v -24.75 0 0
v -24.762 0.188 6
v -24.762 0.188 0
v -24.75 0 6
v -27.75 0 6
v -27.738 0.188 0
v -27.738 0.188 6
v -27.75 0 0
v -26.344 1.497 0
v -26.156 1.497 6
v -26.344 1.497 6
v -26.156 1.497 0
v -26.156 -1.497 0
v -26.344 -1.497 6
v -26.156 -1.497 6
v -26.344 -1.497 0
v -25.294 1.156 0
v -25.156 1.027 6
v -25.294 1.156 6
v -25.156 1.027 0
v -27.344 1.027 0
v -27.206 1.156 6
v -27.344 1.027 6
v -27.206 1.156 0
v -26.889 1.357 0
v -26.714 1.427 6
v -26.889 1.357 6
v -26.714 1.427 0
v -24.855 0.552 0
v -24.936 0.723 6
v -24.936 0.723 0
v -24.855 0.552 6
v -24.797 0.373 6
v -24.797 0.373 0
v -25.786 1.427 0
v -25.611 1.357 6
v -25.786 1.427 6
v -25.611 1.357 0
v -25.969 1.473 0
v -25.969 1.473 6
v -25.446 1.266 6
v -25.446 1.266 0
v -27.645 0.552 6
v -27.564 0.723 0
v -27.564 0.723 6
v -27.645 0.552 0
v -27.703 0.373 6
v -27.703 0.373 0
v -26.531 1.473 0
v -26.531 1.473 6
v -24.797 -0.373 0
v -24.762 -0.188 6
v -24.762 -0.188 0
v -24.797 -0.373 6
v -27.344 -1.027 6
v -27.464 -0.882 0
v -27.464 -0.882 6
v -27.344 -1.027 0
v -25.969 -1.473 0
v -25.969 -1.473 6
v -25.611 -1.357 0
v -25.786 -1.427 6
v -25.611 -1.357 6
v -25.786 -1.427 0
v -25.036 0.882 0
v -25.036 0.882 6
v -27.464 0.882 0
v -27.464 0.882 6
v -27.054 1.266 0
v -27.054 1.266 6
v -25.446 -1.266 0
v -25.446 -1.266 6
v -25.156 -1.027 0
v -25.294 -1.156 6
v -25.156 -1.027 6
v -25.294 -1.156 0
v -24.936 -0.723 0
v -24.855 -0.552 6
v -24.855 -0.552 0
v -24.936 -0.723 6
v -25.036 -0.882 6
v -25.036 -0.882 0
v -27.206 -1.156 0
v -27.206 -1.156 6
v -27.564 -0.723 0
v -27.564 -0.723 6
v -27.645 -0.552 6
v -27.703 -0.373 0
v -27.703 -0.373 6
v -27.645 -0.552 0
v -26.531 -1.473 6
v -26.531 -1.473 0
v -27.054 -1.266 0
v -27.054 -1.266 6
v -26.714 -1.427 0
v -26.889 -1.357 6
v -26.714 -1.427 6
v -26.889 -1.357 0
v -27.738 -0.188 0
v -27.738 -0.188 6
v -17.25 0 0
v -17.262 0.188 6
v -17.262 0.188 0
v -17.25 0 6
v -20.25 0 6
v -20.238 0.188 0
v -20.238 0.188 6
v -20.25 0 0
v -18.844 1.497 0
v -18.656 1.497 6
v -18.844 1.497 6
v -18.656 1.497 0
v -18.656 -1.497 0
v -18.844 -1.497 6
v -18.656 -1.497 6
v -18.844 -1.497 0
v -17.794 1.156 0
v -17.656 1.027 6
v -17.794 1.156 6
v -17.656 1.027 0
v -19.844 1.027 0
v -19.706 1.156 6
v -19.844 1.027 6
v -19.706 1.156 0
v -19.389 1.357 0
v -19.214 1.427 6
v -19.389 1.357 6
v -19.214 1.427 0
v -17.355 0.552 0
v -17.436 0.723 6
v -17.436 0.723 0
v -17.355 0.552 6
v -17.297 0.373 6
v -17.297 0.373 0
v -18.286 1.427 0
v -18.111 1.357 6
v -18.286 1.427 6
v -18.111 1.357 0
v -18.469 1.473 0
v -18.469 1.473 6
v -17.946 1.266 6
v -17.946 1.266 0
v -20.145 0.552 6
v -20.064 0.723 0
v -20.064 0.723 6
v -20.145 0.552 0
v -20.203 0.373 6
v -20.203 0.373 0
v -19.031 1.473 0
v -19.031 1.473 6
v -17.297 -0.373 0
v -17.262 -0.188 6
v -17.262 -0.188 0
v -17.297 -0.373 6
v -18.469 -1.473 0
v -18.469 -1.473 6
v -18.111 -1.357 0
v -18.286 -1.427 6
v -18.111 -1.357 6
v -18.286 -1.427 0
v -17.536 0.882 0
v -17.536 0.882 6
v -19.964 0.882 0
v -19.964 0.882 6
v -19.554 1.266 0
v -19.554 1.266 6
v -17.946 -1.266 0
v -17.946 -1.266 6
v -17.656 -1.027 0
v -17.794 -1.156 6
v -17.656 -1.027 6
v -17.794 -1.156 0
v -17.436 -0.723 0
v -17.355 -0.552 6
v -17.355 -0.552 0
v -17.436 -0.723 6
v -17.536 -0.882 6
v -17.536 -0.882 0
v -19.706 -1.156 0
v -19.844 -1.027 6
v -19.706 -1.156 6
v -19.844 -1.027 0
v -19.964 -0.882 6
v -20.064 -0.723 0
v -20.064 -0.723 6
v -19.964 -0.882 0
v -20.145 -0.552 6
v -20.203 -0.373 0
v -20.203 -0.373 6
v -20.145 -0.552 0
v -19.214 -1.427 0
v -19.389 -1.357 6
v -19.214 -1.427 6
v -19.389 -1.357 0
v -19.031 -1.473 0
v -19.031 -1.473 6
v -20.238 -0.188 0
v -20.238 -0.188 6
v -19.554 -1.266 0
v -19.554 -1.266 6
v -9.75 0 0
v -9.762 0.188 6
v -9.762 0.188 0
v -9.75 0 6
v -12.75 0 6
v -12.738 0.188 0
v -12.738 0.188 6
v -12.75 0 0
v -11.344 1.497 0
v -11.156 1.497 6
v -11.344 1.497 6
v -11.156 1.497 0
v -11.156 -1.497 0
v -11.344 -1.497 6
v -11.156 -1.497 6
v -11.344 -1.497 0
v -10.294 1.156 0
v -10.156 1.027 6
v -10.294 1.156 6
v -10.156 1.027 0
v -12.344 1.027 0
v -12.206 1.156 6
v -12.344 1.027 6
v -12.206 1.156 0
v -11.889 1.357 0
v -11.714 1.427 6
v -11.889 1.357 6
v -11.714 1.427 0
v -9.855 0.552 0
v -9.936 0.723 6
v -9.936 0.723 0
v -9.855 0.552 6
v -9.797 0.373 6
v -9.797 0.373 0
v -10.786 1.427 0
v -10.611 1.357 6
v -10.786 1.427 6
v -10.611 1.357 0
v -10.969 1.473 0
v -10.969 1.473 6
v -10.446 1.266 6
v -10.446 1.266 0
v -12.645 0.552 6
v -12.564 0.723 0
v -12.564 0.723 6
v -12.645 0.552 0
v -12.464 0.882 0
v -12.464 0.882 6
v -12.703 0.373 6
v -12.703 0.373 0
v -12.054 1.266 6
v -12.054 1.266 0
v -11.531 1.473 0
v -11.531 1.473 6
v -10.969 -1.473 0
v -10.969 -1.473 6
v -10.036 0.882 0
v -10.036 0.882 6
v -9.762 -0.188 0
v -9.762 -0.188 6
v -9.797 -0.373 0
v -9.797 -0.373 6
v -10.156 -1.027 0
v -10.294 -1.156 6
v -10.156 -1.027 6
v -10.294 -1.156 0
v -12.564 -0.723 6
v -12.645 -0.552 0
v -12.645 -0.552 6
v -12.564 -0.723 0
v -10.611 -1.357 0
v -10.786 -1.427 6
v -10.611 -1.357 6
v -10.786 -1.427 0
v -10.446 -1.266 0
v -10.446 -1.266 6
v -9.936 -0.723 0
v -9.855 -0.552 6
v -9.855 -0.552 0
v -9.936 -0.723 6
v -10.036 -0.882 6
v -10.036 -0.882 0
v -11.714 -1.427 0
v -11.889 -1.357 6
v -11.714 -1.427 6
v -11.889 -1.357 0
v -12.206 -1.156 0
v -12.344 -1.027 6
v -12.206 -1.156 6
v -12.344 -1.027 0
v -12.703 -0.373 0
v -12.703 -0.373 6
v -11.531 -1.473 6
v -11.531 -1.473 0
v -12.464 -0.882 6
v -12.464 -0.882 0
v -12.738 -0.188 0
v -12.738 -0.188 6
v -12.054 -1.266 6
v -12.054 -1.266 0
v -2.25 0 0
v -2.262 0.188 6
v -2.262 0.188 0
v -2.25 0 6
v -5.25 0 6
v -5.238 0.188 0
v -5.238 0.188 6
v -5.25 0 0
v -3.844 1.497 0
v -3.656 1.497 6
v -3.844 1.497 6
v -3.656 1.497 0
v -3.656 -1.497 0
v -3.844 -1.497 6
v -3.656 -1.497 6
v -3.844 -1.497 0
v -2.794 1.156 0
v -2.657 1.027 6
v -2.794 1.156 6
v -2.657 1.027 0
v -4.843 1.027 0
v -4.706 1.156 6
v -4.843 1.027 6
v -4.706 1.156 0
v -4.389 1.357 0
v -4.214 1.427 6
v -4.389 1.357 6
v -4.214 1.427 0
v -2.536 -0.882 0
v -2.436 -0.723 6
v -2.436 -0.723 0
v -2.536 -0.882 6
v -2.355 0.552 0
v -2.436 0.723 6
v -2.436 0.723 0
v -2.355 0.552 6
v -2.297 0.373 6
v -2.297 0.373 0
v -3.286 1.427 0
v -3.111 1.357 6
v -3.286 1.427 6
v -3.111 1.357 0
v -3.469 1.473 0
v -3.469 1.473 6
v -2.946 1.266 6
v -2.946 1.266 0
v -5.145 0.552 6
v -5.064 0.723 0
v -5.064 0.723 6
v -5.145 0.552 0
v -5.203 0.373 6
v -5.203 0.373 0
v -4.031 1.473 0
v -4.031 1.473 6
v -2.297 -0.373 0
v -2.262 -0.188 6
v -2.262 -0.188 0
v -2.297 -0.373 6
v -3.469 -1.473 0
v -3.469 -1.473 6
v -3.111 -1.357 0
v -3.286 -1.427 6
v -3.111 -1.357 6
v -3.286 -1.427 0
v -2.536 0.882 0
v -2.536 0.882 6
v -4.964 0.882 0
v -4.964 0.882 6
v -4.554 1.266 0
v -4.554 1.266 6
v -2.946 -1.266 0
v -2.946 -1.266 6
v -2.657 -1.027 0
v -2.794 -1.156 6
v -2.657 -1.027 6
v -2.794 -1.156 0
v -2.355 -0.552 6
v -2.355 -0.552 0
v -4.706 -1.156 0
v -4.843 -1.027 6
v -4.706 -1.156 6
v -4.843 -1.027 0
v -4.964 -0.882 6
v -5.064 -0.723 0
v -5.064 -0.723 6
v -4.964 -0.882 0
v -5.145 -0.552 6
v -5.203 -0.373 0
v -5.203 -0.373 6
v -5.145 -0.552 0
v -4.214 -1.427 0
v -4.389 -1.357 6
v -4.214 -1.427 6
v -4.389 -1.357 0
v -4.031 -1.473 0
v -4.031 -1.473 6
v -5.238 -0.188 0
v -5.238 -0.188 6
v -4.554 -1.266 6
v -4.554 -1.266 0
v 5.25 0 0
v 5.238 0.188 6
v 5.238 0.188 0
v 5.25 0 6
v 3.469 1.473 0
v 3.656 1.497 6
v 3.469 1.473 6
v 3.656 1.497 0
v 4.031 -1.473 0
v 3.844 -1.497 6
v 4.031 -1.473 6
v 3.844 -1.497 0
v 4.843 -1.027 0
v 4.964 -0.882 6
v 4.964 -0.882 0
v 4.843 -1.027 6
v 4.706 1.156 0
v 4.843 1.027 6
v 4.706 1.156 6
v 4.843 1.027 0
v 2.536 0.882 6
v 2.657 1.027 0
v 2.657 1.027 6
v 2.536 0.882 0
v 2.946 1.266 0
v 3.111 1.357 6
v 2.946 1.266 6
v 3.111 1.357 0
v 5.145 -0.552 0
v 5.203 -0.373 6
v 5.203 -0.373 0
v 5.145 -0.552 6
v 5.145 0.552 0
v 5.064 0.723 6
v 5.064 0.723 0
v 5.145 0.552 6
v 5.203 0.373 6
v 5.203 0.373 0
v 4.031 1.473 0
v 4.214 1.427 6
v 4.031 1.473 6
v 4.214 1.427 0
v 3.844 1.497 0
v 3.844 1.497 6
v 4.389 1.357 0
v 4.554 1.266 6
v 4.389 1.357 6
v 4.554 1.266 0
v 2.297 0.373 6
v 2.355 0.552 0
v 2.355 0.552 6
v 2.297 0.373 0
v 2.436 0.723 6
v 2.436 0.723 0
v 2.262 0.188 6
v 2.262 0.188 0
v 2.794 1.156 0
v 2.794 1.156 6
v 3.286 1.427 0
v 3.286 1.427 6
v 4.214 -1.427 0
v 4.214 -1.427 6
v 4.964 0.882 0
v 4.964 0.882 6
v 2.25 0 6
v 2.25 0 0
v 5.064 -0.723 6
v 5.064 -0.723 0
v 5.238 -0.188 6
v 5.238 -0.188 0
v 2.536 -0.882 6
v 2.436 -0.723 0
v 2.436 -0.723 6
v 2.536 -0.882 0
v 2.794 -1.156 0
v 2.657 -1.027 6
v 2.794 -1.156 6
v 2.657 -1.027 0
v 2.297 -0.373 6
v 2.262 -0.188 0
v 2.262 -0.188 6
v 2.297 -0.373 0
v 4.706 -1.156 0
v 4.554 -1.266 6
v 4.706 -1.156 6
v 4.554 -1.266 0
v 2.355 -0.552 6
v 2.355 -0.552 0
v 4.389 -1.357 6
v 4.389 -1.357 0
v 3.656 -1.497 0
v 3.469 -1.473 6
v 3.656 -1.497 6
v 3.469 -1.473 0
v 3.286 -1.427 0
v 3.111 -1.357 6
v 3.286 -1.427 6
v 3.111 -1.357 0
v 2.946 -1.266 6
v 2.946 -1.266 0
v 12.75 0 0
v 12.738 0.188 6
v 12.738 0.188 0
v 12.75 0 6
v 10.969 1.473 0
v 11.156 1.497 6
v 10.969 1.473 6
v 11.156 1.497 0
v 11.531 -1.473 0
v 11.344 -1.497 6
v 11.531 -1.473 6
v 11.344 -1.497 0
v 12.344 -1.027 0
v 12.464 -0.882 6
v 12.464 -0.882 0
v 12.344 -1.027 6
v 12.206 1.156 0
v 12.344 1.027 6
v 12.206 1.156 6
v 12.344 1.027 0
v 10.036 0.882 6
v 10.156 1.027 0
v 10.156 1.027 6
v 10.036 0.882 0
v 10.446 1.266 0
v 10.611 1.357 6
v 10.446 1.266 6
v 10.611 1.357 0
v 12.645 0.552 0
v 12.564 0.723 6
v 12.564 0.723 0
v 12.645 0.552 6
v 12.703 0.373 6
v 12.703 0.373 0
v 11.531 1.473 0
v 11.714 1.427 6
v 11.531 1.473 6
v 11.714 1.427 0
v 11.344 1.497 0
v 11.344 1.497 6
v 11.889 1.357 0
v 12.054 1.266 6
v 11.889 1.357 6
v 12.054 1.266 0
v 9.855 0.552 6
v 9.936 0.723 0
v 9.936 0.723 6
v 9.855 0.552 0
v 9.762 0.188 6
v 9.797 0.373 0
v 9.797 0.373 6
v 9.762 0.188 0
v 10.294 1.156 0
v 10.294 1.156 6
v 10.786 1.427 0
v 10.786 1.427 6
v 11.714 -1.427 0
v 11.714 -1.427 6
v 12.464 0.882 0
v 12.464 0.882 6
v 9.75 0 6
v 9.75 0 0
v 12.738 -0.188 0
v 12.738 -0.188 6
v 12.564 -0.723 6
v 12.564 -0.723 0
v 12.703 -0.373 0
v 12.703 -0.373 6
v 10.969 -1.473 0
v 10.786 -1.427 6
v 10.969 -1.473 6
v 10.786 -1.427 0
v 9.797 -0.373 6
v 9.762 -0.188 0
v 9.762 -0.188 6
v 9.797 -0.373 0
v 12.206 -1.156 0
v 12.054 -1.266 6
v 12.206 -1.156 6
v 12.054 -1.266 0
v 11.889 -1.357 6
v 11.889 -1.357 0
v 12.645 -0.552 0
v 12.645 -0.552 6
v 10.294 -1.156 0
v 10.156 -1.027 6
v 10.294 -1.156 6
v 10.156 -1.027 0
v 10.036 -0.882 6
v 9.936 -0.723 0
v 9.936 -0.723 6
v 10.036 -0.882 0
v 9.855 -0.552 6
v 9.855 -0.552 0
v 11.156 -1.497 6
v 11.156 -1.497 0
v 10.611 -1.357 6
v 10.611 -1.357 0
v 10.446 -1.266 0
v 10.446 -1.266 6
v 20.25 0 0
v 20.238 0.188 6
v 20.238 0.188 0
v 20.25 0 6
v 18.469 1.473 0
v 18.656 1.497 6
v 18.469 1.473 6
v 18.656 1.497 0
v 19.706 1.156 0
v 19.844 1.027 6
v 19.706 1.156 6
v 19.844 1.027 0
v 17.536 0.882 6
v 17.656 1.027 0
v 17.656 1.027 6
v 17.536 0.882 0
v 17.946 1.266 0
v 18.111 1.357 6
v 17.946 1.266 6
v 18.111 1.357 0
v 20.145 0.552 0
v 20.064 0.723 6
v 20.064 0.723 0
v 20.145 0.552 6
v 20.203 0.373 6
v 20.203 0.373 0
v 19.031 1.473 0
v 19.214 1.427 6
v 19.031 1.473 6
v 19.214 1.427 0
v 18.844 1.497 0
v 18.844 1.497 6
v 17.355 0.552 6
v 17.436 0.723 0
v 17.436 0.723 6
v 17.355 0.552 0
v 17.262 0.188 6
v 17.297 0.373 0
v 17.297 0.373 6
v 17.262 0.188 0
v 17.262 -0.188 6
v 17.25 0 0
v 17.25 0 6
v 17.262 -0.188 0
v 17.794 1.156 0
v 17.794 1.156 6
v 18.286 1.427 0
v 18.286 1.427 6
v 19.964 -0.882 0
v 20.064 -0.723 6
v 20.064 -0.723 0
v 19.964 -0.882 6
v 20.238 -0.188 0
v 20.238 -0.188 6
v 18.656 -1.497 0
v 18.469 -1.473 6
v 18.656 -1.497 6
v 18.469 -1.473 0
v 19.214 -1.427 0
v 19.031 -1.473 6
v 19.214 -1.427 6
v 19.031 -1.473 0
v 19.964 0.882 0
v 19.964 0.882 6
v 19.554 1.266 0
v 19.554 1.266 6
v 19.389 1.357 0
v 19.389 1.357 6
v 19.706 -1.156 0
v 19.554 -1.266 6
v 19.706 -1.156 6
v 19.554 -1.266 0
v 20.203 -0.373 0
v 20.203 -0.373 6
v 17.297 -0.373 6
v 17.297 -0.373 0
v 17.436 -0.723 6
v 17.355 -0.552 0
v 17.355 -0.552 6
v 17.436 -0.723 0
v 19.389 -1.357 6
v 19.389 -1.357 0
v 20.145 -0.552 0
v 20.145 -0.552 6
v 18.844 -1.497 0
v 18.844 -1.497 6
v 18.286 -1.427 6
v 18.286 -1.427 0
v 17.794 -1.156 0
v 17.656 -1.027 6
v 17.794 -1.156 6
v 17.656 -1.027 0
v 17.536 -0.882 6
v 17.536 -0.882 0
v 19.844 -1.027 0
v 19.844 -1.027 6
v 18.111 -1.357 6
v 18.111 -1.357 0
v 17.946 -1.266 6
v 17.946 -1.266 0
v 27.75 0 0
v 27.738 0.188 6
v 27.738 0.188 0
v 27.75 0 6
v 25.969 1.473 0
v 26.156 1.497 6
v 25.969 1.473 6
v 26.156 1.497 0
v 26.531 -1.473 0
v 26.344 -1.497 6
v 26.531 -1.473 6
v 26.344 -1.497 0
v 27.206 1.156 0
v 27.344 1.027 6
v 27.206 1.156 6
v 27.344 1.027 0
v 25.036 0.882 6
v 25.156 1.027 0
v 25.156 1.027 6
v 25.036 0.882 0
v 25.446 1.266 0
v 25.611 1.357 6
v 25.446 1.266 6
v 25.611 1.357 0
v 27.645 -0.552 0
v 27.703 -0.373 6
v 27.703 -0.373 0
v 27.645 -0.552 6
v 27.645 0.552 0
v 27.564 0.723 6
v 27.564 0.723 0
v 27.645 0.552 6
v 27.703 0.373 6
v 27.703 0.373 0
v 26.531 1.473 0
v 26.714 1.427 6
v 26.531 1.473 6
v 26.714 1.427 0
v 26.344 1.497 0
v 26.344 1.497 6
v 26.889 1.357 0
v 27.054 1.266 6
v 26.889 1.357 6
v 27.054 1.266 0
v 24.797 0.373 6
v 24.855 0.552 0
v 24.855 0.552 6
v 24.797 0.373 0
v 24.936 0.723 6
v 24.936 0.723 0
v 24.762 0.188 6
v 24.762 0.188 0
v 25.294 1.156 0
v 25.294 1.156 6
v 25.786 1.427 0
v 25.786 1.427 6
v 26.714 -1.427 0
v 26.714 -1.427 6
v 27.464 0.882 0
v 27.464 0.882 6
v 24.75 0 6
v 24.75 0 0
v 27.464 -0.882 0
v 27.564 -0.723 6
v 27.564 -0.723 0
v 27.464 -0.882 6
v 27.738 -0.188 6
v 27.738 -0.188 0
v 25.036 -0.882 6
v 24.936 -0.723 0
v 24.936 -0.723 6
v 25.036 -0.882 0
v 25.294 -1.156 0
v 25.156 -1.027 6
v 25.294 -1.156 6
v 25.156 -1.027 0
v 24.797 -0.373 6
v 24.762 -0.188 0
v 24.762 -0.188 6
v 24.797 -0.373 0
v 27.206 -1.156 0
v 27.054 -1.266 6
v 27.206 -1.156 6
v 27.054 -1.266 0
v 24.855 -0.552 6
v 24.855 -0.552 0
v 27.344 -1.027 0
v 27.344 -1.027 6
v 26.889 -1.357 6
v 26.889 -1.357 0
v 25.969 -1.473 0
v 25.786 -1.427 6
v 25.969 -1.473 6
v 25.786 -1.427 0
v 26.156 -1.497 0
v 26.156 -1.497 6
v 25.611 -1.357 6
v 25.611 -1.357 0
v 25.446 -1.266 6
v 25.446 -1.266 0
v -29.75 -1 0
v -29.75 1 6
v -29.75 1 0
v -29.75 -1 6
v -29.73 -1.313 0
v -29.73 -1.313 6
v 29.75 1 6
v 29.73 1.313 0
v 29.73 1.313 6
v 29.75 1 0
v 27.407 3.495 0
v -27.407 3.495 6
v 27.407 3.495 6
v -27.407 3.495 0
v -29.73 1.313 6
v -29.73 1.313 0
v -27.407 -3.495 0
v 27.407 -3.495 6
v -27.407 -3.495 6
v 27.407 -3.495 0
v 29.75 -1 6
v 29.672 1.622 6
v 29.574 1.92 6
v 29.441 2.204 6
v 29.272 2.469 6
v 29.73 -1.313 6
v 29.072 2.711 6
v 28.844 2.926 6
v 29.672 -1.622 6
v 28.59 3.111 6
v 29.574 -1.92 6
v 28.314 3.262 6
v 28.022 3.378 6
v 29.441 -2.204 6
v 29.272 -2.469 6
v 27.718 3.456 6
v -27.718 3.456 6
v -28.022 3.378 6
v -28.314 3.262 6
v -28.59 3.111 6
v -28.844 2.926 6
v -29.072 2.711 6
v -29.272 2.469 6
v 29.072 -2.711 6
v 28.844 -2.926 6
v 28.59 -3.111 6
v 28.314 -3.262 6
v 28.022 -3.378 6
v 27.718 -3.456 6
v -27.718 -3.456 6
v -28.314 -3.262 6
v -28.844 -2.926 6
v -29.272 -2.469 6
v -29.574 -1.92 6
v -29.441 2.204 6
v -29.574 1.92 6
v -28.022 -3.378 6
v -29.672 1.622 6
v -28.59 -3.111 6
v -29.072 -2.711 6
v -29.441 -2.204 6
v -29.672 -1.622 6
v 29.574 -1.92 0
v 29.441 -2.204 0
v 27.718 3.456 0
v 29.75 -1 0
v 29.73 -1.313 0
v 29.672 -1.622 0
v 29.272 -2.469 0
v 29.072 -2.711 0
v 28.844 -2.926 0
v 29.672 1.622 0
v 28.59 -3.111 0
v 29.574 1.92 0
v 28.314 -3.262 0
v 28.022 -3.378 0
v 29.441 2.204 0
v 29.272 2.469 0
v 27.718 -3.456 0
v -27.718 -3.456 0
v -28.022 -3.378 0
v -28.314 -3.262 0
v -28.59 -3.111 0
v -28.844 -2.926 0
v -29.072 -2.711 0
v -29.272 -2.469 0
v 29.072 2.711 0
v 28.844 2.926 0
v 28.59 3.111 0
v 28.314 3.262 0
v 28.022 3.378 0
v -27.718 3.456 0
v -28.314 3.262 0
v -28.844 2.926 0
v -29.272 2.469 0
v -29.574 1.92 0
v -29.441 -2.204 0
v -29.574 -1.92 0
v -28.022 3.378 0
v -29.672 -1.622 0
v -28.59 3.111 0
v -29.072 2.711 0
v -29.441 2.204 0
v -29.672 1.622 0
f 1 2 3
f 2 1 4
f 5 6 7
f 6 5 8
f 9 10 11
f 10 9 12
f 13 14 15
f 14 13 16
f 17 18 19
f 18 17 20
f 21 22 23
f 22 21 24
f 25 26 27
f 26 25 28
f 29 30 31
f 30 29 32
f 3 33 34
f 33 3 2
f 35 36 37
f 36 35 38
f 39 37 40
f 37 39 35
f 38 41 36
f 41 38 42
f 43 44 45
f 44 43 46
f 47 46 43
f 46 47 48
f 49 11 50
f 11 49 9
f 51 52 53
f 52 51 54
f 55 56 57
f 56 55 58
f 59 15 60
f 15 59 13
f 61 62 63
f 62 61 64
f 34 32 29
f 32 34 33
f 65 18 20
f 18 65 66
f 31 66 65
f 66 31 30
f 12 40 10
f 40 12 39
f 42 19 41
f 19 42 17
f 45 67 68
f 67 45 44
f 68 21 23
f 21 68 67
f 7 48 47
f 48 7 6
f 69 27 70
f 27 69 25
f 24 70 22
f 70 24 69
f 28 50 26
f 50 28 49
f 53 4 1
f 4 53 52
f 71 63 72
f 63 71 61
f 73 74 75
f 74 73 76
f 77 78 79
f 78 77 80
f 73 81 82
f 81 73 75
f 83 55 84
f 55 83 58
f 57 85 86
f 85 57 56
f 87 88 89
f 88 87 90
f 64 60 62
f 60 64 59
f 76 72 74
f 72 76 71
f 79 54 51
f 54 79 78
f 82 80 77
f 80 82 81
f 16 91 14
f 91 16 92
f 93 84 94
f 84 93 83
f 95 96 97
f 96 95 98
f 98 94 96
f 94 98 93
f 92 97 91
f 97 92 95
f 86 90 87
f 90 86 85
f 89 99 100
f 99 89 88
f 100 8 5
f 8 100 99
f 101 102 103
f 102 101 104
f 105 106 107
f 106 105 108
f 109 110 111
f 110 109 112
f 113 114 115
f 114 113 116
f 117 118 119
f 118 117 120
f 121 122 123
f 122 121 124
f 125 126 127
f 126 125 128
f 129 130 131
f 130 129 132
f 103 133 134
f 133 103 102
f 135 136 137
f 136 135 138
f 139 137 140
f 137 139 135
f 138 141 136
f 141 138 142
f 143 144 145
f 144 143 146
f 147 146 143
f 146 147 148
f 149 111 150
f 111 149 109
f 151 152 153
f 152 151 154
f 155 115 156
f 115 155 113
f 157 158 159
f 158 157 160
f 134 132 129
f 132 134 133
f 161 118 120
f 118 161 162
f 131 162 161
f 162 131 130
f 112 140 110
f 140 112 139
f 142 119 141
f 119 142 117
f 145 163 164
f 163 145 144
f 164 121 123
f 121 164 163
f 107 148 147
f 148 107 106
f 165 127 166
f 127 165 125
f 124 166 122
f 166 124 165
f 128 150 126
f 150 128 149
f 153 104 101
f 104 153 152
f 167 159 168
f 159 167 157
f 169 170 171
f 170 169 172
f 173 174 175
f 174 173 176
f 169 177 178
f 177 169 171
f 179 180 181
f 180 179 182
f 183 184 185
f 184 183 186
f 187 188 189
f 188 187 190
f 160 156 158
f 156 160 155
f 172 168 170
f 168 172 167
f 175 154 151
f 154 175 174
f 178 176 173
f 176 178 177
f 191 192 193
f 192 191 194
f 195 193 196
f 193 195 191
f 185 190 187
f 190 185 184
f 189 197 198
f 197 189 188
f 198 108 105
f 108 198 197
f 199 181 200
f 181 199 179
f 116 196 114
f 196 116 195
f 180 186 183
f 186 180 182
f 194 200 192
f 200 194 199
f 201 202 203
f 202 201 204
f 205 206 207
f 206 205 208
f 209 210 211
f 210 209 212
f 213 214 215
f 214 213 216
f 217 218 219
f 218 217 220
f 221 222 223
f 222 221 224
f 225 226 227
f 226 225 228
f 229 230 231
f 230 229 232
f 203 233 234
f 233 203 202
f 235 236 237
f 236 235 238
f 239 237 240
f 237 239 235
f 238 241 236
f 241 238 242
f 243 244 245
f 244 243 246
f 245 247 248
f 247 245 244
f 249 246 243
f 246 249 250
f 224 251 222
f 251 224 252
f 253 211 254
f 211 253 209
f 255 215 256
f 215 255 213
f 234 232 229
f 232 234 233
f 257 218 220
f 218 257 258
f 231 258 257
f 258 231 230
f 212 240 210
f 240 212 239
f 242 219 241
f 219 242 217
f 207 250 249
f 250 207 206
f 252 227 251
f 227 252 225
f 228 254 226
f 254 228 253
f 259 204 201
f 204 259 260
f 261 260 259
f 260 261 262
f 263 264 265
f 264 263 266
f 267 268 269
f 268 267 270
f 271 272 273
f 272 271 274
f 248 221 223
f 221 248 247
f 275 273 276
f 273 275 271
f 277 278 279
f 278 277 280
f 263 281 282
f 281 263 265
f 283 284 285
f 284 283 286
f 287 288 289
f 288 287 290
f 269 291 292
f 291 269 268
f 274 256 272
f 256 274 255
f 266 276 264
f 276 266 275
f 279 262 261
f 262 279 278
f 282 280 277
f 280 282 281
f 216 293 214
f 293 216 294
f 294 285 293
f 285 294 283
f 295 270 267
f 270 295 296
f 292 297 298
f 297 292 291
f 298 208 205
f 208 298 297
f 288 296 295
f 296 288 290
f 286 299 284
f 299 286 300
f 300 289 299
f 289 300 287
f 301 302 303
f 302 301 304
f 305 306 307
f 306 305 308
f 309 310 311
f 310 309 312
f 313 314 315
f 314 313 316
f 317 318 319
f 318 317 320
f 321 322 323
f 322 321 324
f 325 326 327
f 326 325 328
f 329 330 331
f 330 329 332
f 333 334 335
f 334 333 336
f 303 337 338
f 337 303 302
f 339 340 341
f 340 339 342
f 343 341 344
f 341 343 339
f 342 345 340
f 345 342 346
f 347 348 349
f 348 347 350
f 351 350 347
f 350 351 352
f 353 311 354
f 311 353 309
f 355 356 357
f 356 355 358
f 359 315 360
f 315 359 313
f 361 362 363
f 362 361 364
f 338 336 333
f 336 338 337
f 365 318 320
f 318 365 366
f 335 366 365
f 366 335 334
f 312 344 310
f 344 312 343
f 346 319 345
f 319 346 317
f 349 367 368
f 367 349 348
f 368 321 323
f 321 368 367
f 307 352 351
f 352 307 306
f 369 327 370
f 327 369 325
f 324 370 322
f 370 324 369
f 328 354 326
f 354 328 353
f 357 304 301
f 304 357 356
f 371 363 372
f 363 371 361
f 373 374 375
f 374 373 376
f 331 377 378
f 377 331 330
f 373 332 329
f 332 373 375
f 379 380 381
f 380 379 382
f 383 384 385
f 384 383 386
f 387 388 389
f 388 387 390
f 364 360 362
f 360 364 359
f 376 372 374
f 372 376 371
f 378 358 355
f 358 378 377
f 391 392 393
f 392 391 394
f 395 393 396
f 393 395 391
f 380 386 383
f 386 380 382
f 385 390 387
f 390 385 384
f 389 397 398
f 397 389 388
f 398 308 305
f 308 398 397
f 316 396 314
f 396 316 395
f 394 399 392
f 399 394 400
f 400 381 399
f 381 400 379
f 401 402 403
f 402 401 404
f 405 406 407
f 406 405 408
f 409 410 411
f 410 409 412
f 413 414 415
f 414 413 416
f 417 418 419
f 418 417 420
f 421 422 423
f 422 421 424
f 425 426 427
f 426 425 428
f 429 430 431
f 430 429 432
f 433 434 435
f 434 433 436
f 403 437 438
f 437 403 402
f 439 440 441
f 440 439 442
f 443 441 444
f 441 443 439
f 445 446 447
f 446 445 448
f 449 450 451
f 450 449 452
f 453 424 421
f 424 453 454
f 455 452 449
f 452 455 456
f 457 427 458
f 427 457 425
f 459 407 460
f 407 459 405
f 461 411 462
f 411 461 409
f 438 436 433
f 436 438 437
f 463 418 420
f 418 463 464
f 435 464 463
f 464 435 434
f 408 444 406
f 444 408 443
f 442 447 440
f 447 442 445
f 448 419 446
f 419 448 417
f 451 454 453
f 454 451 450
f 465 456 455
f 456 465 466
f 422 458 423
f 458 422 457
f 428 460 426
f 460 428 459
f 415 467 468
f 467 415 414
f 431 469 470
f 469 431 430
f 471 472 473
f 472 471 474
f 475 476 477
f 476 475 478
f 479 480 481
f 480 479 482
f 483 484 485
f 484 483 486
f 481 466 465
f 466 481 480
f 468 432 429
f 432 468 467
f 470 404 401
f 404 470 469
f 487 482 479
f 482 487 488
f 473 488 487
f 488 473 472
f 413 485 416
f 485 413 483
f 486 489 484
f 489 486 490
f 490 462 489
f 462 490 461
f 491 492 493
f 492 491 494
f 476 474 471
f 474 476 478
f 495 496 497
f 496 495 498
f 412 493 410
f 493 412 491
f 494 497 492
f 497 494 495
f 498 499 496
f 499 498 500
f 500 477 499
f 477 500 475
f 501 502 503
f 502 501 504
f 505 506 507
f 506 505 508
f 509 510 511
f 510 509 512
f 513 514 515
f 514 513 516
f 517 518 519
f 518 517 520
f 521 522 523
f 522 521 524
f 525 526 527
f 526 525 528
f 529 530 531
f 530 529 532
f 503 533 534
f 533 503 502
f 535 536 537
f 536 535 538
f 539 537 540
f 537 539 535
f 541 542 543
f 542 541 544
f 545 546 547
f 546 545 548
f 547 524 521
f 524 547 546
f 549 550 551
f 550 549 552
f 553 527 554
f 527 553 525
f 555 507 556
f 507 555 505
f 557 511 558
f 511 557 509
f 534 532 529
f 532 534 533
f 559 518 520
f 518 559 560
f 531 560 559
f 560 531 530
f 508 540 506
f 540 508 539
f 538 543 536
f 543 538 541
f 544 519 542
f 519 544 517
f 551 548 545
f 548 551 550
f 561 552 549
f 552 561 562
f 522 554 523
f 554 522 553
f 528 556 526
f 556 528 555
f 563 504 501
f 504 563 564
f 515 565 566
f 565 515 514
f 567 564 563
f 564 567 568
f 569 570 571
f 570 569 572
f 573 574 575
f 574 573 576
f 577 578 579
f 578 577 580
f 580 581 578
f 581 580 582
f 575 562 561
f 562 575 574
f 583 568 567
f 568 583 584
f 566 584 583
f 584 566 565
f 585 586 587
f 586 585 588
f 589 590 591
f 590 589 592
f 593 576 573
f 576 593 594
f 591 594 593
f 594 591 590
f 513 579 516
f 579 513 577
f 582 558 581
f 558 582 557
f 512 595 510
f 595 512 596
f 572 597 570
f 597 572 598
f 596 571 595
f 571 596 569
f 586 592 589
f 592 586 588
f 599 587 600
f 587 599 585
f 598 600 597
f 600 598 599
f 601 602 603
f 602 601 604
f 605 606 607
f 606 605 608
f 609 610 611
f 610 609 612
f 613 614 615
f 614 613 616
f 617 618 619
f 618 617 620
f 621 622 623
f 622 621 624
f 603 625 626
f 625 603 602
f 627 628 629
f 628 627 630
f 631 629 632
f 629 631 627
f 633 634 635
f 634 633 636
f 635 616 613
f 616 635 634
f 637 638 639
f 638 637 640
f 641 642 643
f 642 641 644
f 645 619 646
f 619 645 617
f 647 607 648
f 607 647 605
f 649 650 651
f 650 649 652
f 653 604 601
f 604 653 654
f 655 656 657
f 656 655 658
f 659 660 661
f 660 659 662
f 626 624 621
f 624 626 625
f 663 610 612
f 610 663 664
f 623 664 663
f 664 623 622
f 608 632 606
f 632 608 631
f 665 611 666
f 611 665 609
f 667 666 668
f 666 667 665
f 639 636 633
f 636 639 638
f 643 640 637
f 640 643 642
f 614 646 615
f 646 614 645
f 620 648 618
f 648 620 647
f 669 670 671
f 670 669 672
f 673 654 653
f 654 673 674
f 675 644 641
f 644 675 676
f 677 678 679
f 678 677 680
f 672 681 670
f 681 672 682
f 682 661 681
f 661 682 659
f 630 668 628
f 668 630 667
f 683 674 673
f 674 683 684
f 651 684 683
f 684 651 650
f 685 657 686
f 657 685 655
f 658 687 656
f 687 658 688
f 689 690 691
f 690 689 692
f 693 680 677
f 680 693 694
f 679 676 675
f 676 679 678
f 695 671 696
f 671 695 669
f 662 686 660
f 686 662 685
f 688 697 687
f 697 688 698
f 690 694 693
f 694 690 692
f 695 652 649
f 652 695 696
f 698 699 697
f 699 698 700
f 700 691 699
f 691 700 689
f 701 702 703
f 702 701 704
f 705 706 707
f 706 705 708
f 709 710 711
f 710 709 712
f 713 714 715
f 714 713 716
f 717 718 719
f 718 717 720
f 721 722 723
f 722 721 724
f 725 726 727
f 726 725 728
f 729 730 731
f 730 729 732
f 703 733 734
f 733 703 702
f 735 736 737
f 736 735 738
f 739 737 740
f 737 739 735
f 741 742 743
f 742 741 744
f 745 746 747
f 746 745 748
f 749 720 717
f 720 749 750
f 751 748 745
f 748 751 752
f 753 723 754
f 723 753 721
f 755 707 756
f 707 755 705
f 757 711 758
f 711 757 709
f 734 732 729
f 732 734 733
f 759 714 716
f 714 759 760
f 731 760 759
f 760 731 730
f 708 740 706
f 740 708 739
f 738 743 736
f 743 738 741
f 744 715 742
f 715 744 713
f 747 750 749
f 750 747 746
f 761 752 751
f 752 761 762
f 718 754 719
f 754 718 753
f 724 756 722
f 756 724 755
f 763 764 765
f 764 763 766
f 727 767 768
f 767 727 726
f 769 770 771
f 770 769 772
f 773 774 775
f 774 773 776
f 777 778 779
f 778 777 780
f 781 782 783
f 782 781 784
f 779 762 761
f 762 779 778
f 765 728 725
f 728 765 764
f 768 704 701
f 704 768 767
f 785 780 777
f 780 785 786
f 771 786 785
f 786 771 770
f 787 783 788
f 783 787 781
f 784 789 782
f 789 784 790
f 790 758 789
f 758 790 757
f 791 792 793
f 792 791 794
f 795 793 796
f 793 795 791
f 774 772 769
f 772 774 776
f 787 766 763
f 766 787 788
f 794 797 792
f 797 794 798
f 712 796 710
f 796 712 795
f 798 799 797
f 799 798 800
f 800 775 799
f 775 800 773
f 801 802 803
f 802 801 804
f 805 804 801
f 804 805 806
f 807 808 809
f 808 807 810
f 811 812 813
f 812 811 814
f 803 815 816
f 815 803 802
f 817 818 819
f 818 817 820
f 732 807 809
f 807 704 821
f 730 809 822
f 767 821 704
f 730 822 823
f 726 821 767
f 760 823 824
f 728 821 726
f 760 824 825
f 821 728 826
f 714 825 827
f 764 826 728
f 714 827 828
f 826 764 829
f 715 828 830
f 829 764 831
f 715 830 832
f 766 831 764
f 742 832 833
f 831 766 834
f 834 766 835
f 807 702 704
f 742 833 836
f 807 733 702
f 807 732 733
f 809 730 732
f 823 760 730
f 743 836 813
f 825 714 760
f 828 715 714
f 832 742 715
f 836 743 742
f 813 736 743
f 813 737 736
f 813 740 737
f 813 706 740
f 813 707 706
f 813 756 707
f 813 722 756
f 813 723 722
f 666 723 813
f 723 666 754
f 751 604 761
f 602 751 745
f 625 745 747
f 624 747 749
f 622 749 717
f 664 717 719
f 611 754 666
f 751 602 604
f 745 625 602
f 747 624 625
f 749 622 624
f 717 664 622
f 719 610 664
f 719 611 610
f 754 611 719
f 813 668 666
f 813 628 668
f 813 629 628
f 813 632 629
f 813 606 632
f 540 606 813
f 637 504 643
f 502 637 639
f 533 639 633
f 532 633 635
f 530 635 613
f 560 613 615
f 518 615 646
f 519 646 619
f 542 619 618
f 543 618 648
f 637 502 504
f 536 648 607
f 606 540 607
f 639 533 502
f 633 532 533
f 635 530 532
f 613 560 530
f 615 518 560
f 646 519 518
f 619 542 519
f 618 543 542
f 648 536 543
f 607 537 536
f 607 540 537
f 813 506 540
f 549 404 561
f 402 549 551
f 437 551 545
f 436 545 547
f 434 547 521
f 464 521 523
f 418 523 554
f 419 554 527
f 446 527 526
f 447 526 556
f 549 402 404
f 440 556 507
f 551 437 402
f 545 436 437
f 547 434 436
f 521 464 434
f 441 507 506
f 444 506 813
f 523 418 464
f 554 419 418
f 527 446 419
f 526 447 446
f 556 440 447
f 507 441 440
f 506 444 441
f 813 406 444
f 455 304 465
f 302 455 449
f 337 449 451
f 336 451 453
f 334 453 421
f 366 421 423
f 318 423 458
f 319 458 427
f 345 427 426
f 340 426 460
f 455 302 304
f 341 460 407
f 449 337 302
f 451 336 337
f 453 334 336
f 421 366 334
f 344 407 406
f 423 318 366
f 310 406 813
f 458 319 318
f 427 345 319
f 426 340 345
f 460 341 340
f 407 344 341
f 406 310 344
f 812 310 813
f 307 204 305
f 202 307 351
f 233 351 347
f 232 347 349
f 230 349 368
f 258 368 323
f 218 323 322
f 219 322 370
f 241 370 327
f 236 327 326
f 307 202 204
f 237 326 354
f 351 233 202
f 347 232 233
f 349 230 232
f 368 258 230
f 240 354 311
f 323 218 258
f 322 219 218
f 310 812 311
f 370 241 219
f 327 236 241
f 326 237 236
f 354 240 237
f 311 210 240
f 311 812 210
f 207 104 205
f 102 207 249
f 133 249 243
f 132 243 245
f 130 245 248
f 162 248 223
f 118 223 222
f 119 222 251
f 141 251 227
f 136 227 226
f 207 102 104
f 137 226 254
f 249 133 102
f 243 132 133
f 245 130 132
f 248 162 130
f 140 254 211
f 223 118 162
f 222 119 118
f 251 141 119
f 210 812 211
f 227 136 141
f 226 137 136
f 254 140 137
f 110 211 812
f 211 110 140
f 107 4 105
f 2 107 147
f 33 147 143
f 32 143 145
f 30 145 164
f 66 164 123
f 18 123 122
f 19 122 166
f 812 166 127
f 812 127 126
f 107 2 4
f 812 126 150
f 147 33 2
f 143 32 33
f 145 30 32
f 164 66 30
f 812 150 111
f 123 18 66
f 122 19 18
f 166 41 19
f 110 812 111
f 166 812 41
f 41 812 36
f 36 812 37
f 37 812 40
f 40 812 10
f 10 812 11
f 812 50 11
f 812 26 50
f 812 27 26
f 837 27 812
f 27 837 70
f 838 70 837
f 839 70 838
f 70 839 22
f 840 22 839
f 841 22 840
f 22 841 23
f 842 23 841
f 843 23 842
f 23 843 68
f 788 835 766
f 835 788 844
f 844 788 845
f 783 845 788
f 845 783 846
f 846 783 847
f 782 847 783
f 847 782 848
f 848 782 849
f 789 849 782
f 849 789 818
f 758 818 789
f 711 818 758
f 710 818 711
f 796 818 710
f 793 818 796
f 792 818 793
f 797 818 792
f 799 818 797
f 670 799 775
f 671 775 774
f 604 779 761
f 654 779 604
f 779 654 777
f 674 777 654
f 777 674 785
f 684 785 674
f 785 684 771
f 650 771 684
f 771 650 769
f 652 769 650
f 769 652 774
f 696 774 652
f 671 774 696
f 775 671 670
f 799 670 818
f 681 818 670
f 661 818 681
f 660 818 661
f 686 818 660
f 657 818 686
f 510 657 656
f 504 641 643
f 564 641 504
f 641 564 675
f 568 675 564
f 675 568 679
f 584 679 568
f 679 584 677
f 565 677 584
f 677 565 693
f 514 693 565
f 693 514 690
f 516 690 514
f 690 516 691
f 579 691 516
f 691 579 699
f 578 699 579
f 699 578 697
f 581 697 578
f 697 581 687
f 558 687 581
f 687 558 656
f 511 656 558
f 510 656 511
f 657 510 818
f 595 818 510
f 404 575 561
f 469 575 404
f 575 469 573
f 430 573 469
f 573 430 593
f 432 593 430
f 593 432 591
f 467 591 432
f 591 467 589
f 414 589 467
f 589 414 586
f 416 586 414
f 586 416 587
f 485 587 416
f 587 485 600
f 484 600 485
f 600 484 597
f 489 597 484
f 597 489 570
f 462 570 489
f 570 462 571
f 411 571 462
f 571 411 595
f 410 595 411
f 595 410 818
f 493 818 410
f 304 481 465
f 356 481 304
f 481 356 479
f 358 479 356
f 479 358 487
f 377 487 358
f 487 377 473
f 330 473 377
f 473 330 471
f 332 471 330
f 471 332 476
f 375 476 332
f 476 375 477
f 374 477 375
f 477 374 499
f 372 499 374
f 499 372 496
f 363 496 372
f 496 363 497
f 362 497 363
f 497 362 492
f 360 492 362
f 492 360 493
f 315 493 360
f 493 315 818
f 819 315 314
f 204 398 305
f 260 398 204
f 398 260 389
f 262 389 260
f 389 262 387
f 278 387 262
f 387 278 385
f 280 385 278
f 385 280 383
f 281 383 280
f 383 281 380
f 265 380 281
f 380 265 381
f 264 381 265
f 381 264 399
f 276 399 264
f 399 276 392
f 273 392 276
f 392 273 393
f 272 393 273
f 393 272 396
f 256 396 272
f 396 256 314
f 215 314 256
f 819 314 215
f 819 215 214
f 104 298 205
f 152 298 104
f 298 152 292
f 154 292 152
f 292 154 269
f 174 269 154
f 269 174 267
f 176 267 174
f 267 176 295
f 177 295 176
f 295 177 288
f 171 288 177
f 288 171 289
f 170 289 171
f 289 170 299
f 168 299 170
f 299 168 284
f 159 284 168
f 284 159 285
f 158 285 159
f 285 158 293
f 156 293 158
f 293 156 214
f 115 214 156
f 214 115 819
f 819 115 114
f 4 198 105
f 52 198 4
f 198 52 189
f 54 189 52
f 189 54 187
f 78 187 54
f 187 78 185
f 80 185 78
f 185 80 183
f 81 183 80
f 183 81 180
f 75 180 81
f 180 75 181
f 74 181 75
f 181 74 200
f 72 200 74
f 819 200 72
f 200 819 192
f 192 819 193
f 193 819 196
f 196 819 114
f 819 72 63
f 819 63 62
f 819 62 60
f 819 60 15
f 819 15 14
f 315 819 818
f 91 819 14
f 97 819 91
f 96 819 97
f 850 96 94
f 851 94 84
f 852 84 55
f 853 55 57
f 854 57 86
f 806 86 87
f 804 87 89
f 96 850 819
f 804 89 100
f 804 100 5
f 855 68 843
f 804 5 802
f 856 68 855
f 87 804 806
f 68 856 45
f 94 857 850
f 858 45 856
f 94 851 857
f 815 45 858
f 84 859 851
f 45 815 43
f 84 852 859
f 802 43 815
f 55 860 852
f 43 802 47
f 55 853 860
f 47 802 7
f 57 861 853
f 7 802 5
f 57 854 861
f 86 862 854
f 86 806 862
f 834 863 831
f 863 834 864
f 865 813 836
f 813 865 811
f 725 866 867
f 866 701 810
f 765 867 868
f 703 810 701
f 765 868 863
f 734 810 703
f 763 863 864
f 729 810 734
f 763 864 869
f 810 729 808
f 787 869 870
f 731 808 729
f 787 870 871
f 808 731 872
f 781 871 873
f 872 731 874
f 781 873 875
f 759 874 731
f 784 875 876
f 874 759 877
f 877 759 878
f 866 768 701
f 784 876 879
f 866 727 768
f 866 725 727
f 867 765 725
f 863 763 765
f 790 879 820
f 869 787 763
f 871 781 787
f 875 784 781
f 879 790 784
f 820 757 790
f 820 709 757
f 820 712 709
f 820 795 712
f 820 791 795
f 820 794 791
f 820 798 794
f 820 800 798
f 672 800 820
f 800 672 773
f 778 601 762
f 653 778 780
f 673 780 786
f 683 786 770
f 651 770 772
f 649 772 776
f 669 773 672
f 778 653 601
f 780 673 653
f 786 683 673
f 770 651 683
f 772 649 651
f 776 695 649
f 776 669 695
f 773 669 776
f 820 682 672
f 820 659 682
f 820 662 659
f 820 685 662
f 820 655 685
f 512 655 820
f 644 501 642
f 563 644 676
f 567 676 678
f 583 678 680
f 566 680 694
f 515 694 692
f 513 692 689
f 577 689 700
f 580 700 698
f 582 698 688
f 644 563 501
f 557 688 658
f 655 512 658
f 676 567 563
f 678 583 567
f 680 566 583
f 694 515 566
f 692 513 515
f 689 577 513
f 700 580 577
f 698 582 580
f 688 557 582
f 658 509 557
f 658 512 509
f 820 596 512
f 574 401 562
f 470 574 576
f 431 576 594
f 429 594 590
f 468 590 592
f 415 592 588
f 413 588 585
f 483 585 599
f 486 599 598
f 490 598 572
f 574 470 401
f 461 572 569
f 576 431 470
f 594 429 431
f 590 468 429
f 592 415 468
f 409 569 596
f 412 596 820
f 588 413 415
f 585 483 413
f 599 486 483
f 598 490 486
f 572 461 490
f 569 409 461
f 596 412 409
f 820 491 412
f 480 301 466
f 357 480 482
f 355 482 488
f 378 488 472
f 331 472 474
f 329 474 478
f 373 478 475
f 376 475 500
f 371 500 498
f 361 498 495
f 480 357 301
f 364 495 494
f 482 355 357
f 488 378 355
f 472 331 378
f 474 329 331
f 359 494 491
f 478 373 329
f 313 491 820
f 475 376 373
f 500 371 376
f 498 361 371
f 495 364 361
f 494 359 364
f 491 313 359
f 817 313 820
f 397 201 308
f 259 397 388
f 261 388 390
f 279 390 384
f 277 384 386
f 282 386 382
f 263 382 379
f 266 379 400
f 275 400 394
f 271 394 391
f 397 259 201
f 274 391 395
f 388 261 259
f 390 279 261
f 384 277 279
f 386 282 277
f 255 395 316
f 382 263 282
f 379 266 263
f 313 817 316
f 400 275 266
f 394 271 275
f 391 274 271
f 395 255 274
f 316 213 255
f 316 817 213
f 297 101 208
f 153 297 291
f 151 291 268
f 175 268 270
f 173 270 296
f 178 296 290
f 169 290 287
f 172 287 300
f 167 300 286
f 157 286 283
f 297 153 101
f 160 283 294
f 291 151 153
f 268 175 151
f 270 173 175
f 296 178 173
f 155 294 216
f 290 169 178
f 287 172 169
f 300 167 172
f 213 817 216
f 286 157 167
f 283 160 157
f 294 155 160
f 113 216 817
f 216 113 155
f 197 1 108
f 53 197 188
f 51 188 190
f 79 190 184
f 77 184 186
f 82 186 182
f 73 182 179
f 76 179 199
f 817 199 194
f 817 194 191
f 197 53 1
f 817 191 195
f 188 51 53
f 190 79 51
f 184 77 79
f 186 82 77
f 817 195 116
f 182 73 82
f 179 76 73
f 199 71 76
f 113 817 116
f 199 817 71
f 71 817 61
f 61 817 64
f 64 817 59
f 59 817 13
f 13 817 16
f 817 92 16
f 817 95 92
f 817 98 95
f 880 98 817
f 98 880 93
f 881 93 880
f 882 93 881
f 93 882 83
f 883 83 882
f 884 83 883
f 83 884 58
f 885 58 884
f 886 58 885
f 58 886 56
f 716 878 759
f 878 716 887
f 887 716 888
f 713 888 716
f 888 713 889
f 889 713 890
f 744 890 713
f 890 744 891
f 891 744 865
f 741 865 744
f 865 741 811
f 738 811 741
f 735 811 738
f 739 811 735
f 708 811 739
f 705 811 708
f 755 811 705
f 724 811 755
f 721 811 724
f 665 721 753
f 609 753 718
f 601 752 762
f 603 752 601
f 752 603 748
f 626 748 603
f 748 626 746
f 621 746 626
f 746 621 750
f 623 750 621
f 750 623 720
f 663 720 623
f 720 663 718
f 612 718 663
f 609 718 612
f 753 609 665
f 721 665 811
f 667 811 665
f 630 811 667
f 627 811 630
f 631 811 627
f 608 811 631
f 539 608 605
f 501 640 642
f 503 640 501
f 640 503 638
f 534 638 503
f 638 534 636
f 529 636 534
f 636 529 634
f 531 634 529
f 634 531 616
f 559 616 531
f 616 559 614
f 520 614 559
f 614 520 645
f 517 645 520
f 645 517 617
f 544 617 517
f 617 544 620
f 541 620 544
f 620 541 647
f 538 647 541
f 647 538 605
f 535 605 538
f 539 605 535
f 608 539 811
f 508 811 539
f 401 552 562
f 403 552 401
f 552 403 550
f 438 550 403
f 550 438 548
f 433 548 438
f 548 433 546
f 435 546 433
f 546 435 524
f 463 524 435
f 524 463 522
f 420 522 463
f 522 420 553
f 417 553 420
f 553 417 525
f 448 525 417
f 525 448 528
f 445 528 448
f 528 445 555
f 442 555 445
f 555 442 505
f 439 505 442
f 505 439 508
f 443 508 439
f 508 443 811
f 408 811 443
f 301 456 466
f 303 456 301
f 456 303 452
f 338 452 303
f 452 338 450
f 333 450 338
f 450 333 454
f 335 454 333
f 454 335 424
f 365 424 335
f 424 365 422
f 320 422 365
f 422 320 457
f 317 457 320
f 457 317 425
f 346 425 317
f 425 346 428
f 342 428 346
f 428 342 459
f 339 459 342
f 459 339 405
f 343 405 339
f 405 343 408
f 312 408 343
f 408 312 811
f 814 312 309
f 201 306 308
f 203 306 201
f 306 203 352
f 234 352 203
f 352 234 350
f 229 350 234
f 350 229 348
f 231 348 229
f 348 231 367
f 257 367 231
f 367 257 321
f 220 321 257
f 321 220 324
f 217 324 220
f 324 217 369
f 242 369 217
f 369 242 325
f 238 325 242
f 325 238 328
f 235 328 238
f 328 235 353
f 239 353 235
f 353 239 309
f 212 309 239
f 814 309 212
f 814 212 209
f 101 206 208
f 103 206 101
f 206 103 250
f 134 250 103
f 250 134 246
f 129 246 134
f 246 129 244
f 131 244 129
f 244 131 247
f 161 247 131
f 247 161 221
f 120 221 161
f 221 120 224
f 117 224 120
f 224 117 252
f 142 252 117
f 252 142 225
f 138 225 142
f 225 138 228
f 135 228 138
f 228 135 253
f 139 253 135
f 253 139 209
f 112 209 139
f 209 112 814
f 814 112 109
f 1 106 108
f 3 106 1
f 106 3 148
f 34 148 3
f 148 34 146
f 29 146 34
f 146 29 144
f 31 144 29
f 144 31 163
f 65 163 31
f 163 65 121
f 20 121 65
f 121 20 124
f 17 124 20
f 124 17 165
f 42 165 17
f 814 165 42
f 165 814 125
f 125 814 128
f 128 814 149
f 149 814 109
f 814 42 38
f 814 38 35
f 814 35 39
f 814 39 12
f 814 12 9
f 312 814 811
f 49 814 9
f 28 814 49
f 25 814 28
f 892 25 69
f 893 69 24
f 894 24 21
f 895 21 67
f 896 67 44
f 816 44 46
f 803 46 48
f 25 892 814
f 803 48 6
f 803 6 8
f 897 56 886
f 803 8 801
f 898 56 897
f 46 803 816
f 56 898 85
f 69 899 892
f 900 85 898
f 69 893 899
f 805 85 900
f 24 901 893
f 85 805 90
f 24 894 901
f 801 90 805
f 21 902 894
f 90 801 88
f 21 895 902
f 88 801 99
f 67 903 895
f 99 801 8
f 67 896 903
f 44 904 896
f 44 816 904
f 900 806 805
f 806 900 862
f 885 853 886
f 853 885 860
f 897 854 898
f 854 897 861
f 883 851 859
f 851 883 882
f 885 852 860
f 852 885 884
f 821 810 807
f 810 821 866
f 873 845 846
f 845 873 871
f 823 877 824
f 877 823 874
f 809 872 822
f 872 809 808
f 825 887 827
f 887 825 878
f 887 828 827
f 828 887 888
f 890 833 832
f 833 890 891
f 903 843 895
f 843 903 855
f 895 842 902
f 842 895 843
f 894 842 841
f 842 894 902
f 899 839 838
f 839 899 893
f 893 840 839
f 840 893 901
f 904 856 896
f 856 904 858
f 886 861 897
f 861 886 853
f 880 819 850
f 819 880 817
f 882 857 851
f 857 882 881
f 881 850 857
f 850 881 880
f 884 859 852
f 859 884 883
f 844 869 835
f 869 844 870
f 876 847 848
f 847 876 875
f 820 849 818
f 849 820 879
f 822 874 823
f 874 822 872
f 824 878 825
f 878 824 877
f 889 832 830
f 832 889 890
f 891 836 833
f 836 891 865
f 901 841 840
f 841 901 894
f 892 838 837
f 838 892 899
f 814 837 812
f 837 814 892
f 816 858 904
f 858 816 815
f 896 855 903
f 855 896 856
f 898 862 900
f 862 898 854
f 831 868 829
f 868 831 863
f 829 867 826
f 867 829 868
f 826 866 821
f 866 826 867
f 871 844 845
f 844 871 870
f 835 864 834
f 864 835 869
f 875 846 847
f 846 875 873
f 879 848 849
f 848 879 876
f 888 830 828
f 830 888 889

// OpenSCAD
$fn = 50;


difference() {
	union() {
		translate(v = [0, 0, 0]) {
			rotate(a = [0, 0, 0]) {
				hull() {
					translate(v = [-27.2500000000, 1.0000000000, 0]) {
						rotate(a = [0, 0, 0]) {
							translate(v = [0, 0, 0]) {
								rotate(a = [0, 0, 0]) {
									cylinder(h = 6, r = 2.5000000000);
								}
							}
						}
					}
					translate(v = [27.2500000000, 1.0000000000, 0]) {
						rotate(a = [0, 0, 0]) {
							translate(v = [0, 0, 0]) {
								rotate(a = [0, 0, 0]) {
									cylinder(h = 6, r = 2.5000000000);
								}
							}
						}
					}
					translate(v = [-27.2500000000, -1.0000000000, 0]) {
						rotate(a = [0, 0, 0]) {
							translate(v = [0, 0, 0]) {
								rotate(a = [0, 0, 0]) {
									cylinder(h = 6, r = 2.5000000000);
								}
							}
						}
					}
					translate(v = [27.2500000000, -1.0000000000, 0]) {
						rotate(a = [0, 0, 0]) {
							translate(v = [0, 0, 0]) {
								rotate(a = [0, 0, 0]) {
									cylinder(h = 6, r = 2.5000000000);
								}
							}
						}
					}
				}
			}
		}
	}
	union() {
		translate(v = [-26.2500000000, 0.0000000000, 0]) {
			rotate(a = [0, 0, 0]) {
				translate(v = [0, 0, -50]) {
					rotate(a = [0, 0, 0]) {
						cylinder(h = 100, r = 1.5000000000);
					}
				}
			}
		}
		translate(v = [-18.7500000000, 0.0000000000, 0]) {
			rotate(a = [0, 0, 0]) {
				translate(v = [0, 0, -50]) {
					rotate(a = [0, 0, 0]) {
						cylinder(h = 100, r = 1.5000000000);
					}
				}
			}
		}
		translate(v = [-11.2500000000, 0.0000000000, 0]) {
			rotate(a = [0, 0, 0]) {
				translate(v = [0, 0, -50]) {
					rotate(a = [0, 0, 0]) {
						cylinder(h = 100, r = 1.5000000000);
					}
				}
			}
		}
		translate(v = [-3.7500000000, 0.0000000000, 0]) {
			rotate(a = [0, 0, 0]) {
				translate(v = [0, 0, -50]) {
					rotate(a = [0, 0, 0]) {
						cylinder(h = 100, r = 1.5000000000);
					}
				}
			}
		}
		translate(v = [3.7500000000, 0.0000000000, 0]) {
			rotate(a = [0, 0, 0]) {
				translate(v = [0, 0, -50]) {
					rotate(a = [0, 0, 0]) {
						cylinder(h = 100, r = 1.5000000000);
					}
				}
			}
		}
		translate(v = [11.2500000000, 0.0000000000, 0]) {
			rotate(a = [0, 0, 0]) {
				translate(v = [0, 0, -50]) {
					rotate(a = [0, 0, 0]) {
						cylinder(h = 100, r = 1.5000000000);
					}
				}
			}
		}
		translate(v = [18.7500000000, 0.0000000000, 0]) {
			rotate(a = [0, 0, 0]) {
				translate(v = [0, 0, -50]) {
					rotate(a = [0, 0, 0]) {
						cylinder(h = 100, r = 1.5000000000);
					}
				}
			}
		}
		translate(v = [26.2500000000, 0.0000000000, 0]) {
			rotate(a = [0, 0, 0]) {
				translate(v = [0, 0, -50]) {
					rotate(a = [0, 0, 0]) {
						cylinder(h = 100, r = 1.5000000000);
					}
				}
			}
		}
	}
}
